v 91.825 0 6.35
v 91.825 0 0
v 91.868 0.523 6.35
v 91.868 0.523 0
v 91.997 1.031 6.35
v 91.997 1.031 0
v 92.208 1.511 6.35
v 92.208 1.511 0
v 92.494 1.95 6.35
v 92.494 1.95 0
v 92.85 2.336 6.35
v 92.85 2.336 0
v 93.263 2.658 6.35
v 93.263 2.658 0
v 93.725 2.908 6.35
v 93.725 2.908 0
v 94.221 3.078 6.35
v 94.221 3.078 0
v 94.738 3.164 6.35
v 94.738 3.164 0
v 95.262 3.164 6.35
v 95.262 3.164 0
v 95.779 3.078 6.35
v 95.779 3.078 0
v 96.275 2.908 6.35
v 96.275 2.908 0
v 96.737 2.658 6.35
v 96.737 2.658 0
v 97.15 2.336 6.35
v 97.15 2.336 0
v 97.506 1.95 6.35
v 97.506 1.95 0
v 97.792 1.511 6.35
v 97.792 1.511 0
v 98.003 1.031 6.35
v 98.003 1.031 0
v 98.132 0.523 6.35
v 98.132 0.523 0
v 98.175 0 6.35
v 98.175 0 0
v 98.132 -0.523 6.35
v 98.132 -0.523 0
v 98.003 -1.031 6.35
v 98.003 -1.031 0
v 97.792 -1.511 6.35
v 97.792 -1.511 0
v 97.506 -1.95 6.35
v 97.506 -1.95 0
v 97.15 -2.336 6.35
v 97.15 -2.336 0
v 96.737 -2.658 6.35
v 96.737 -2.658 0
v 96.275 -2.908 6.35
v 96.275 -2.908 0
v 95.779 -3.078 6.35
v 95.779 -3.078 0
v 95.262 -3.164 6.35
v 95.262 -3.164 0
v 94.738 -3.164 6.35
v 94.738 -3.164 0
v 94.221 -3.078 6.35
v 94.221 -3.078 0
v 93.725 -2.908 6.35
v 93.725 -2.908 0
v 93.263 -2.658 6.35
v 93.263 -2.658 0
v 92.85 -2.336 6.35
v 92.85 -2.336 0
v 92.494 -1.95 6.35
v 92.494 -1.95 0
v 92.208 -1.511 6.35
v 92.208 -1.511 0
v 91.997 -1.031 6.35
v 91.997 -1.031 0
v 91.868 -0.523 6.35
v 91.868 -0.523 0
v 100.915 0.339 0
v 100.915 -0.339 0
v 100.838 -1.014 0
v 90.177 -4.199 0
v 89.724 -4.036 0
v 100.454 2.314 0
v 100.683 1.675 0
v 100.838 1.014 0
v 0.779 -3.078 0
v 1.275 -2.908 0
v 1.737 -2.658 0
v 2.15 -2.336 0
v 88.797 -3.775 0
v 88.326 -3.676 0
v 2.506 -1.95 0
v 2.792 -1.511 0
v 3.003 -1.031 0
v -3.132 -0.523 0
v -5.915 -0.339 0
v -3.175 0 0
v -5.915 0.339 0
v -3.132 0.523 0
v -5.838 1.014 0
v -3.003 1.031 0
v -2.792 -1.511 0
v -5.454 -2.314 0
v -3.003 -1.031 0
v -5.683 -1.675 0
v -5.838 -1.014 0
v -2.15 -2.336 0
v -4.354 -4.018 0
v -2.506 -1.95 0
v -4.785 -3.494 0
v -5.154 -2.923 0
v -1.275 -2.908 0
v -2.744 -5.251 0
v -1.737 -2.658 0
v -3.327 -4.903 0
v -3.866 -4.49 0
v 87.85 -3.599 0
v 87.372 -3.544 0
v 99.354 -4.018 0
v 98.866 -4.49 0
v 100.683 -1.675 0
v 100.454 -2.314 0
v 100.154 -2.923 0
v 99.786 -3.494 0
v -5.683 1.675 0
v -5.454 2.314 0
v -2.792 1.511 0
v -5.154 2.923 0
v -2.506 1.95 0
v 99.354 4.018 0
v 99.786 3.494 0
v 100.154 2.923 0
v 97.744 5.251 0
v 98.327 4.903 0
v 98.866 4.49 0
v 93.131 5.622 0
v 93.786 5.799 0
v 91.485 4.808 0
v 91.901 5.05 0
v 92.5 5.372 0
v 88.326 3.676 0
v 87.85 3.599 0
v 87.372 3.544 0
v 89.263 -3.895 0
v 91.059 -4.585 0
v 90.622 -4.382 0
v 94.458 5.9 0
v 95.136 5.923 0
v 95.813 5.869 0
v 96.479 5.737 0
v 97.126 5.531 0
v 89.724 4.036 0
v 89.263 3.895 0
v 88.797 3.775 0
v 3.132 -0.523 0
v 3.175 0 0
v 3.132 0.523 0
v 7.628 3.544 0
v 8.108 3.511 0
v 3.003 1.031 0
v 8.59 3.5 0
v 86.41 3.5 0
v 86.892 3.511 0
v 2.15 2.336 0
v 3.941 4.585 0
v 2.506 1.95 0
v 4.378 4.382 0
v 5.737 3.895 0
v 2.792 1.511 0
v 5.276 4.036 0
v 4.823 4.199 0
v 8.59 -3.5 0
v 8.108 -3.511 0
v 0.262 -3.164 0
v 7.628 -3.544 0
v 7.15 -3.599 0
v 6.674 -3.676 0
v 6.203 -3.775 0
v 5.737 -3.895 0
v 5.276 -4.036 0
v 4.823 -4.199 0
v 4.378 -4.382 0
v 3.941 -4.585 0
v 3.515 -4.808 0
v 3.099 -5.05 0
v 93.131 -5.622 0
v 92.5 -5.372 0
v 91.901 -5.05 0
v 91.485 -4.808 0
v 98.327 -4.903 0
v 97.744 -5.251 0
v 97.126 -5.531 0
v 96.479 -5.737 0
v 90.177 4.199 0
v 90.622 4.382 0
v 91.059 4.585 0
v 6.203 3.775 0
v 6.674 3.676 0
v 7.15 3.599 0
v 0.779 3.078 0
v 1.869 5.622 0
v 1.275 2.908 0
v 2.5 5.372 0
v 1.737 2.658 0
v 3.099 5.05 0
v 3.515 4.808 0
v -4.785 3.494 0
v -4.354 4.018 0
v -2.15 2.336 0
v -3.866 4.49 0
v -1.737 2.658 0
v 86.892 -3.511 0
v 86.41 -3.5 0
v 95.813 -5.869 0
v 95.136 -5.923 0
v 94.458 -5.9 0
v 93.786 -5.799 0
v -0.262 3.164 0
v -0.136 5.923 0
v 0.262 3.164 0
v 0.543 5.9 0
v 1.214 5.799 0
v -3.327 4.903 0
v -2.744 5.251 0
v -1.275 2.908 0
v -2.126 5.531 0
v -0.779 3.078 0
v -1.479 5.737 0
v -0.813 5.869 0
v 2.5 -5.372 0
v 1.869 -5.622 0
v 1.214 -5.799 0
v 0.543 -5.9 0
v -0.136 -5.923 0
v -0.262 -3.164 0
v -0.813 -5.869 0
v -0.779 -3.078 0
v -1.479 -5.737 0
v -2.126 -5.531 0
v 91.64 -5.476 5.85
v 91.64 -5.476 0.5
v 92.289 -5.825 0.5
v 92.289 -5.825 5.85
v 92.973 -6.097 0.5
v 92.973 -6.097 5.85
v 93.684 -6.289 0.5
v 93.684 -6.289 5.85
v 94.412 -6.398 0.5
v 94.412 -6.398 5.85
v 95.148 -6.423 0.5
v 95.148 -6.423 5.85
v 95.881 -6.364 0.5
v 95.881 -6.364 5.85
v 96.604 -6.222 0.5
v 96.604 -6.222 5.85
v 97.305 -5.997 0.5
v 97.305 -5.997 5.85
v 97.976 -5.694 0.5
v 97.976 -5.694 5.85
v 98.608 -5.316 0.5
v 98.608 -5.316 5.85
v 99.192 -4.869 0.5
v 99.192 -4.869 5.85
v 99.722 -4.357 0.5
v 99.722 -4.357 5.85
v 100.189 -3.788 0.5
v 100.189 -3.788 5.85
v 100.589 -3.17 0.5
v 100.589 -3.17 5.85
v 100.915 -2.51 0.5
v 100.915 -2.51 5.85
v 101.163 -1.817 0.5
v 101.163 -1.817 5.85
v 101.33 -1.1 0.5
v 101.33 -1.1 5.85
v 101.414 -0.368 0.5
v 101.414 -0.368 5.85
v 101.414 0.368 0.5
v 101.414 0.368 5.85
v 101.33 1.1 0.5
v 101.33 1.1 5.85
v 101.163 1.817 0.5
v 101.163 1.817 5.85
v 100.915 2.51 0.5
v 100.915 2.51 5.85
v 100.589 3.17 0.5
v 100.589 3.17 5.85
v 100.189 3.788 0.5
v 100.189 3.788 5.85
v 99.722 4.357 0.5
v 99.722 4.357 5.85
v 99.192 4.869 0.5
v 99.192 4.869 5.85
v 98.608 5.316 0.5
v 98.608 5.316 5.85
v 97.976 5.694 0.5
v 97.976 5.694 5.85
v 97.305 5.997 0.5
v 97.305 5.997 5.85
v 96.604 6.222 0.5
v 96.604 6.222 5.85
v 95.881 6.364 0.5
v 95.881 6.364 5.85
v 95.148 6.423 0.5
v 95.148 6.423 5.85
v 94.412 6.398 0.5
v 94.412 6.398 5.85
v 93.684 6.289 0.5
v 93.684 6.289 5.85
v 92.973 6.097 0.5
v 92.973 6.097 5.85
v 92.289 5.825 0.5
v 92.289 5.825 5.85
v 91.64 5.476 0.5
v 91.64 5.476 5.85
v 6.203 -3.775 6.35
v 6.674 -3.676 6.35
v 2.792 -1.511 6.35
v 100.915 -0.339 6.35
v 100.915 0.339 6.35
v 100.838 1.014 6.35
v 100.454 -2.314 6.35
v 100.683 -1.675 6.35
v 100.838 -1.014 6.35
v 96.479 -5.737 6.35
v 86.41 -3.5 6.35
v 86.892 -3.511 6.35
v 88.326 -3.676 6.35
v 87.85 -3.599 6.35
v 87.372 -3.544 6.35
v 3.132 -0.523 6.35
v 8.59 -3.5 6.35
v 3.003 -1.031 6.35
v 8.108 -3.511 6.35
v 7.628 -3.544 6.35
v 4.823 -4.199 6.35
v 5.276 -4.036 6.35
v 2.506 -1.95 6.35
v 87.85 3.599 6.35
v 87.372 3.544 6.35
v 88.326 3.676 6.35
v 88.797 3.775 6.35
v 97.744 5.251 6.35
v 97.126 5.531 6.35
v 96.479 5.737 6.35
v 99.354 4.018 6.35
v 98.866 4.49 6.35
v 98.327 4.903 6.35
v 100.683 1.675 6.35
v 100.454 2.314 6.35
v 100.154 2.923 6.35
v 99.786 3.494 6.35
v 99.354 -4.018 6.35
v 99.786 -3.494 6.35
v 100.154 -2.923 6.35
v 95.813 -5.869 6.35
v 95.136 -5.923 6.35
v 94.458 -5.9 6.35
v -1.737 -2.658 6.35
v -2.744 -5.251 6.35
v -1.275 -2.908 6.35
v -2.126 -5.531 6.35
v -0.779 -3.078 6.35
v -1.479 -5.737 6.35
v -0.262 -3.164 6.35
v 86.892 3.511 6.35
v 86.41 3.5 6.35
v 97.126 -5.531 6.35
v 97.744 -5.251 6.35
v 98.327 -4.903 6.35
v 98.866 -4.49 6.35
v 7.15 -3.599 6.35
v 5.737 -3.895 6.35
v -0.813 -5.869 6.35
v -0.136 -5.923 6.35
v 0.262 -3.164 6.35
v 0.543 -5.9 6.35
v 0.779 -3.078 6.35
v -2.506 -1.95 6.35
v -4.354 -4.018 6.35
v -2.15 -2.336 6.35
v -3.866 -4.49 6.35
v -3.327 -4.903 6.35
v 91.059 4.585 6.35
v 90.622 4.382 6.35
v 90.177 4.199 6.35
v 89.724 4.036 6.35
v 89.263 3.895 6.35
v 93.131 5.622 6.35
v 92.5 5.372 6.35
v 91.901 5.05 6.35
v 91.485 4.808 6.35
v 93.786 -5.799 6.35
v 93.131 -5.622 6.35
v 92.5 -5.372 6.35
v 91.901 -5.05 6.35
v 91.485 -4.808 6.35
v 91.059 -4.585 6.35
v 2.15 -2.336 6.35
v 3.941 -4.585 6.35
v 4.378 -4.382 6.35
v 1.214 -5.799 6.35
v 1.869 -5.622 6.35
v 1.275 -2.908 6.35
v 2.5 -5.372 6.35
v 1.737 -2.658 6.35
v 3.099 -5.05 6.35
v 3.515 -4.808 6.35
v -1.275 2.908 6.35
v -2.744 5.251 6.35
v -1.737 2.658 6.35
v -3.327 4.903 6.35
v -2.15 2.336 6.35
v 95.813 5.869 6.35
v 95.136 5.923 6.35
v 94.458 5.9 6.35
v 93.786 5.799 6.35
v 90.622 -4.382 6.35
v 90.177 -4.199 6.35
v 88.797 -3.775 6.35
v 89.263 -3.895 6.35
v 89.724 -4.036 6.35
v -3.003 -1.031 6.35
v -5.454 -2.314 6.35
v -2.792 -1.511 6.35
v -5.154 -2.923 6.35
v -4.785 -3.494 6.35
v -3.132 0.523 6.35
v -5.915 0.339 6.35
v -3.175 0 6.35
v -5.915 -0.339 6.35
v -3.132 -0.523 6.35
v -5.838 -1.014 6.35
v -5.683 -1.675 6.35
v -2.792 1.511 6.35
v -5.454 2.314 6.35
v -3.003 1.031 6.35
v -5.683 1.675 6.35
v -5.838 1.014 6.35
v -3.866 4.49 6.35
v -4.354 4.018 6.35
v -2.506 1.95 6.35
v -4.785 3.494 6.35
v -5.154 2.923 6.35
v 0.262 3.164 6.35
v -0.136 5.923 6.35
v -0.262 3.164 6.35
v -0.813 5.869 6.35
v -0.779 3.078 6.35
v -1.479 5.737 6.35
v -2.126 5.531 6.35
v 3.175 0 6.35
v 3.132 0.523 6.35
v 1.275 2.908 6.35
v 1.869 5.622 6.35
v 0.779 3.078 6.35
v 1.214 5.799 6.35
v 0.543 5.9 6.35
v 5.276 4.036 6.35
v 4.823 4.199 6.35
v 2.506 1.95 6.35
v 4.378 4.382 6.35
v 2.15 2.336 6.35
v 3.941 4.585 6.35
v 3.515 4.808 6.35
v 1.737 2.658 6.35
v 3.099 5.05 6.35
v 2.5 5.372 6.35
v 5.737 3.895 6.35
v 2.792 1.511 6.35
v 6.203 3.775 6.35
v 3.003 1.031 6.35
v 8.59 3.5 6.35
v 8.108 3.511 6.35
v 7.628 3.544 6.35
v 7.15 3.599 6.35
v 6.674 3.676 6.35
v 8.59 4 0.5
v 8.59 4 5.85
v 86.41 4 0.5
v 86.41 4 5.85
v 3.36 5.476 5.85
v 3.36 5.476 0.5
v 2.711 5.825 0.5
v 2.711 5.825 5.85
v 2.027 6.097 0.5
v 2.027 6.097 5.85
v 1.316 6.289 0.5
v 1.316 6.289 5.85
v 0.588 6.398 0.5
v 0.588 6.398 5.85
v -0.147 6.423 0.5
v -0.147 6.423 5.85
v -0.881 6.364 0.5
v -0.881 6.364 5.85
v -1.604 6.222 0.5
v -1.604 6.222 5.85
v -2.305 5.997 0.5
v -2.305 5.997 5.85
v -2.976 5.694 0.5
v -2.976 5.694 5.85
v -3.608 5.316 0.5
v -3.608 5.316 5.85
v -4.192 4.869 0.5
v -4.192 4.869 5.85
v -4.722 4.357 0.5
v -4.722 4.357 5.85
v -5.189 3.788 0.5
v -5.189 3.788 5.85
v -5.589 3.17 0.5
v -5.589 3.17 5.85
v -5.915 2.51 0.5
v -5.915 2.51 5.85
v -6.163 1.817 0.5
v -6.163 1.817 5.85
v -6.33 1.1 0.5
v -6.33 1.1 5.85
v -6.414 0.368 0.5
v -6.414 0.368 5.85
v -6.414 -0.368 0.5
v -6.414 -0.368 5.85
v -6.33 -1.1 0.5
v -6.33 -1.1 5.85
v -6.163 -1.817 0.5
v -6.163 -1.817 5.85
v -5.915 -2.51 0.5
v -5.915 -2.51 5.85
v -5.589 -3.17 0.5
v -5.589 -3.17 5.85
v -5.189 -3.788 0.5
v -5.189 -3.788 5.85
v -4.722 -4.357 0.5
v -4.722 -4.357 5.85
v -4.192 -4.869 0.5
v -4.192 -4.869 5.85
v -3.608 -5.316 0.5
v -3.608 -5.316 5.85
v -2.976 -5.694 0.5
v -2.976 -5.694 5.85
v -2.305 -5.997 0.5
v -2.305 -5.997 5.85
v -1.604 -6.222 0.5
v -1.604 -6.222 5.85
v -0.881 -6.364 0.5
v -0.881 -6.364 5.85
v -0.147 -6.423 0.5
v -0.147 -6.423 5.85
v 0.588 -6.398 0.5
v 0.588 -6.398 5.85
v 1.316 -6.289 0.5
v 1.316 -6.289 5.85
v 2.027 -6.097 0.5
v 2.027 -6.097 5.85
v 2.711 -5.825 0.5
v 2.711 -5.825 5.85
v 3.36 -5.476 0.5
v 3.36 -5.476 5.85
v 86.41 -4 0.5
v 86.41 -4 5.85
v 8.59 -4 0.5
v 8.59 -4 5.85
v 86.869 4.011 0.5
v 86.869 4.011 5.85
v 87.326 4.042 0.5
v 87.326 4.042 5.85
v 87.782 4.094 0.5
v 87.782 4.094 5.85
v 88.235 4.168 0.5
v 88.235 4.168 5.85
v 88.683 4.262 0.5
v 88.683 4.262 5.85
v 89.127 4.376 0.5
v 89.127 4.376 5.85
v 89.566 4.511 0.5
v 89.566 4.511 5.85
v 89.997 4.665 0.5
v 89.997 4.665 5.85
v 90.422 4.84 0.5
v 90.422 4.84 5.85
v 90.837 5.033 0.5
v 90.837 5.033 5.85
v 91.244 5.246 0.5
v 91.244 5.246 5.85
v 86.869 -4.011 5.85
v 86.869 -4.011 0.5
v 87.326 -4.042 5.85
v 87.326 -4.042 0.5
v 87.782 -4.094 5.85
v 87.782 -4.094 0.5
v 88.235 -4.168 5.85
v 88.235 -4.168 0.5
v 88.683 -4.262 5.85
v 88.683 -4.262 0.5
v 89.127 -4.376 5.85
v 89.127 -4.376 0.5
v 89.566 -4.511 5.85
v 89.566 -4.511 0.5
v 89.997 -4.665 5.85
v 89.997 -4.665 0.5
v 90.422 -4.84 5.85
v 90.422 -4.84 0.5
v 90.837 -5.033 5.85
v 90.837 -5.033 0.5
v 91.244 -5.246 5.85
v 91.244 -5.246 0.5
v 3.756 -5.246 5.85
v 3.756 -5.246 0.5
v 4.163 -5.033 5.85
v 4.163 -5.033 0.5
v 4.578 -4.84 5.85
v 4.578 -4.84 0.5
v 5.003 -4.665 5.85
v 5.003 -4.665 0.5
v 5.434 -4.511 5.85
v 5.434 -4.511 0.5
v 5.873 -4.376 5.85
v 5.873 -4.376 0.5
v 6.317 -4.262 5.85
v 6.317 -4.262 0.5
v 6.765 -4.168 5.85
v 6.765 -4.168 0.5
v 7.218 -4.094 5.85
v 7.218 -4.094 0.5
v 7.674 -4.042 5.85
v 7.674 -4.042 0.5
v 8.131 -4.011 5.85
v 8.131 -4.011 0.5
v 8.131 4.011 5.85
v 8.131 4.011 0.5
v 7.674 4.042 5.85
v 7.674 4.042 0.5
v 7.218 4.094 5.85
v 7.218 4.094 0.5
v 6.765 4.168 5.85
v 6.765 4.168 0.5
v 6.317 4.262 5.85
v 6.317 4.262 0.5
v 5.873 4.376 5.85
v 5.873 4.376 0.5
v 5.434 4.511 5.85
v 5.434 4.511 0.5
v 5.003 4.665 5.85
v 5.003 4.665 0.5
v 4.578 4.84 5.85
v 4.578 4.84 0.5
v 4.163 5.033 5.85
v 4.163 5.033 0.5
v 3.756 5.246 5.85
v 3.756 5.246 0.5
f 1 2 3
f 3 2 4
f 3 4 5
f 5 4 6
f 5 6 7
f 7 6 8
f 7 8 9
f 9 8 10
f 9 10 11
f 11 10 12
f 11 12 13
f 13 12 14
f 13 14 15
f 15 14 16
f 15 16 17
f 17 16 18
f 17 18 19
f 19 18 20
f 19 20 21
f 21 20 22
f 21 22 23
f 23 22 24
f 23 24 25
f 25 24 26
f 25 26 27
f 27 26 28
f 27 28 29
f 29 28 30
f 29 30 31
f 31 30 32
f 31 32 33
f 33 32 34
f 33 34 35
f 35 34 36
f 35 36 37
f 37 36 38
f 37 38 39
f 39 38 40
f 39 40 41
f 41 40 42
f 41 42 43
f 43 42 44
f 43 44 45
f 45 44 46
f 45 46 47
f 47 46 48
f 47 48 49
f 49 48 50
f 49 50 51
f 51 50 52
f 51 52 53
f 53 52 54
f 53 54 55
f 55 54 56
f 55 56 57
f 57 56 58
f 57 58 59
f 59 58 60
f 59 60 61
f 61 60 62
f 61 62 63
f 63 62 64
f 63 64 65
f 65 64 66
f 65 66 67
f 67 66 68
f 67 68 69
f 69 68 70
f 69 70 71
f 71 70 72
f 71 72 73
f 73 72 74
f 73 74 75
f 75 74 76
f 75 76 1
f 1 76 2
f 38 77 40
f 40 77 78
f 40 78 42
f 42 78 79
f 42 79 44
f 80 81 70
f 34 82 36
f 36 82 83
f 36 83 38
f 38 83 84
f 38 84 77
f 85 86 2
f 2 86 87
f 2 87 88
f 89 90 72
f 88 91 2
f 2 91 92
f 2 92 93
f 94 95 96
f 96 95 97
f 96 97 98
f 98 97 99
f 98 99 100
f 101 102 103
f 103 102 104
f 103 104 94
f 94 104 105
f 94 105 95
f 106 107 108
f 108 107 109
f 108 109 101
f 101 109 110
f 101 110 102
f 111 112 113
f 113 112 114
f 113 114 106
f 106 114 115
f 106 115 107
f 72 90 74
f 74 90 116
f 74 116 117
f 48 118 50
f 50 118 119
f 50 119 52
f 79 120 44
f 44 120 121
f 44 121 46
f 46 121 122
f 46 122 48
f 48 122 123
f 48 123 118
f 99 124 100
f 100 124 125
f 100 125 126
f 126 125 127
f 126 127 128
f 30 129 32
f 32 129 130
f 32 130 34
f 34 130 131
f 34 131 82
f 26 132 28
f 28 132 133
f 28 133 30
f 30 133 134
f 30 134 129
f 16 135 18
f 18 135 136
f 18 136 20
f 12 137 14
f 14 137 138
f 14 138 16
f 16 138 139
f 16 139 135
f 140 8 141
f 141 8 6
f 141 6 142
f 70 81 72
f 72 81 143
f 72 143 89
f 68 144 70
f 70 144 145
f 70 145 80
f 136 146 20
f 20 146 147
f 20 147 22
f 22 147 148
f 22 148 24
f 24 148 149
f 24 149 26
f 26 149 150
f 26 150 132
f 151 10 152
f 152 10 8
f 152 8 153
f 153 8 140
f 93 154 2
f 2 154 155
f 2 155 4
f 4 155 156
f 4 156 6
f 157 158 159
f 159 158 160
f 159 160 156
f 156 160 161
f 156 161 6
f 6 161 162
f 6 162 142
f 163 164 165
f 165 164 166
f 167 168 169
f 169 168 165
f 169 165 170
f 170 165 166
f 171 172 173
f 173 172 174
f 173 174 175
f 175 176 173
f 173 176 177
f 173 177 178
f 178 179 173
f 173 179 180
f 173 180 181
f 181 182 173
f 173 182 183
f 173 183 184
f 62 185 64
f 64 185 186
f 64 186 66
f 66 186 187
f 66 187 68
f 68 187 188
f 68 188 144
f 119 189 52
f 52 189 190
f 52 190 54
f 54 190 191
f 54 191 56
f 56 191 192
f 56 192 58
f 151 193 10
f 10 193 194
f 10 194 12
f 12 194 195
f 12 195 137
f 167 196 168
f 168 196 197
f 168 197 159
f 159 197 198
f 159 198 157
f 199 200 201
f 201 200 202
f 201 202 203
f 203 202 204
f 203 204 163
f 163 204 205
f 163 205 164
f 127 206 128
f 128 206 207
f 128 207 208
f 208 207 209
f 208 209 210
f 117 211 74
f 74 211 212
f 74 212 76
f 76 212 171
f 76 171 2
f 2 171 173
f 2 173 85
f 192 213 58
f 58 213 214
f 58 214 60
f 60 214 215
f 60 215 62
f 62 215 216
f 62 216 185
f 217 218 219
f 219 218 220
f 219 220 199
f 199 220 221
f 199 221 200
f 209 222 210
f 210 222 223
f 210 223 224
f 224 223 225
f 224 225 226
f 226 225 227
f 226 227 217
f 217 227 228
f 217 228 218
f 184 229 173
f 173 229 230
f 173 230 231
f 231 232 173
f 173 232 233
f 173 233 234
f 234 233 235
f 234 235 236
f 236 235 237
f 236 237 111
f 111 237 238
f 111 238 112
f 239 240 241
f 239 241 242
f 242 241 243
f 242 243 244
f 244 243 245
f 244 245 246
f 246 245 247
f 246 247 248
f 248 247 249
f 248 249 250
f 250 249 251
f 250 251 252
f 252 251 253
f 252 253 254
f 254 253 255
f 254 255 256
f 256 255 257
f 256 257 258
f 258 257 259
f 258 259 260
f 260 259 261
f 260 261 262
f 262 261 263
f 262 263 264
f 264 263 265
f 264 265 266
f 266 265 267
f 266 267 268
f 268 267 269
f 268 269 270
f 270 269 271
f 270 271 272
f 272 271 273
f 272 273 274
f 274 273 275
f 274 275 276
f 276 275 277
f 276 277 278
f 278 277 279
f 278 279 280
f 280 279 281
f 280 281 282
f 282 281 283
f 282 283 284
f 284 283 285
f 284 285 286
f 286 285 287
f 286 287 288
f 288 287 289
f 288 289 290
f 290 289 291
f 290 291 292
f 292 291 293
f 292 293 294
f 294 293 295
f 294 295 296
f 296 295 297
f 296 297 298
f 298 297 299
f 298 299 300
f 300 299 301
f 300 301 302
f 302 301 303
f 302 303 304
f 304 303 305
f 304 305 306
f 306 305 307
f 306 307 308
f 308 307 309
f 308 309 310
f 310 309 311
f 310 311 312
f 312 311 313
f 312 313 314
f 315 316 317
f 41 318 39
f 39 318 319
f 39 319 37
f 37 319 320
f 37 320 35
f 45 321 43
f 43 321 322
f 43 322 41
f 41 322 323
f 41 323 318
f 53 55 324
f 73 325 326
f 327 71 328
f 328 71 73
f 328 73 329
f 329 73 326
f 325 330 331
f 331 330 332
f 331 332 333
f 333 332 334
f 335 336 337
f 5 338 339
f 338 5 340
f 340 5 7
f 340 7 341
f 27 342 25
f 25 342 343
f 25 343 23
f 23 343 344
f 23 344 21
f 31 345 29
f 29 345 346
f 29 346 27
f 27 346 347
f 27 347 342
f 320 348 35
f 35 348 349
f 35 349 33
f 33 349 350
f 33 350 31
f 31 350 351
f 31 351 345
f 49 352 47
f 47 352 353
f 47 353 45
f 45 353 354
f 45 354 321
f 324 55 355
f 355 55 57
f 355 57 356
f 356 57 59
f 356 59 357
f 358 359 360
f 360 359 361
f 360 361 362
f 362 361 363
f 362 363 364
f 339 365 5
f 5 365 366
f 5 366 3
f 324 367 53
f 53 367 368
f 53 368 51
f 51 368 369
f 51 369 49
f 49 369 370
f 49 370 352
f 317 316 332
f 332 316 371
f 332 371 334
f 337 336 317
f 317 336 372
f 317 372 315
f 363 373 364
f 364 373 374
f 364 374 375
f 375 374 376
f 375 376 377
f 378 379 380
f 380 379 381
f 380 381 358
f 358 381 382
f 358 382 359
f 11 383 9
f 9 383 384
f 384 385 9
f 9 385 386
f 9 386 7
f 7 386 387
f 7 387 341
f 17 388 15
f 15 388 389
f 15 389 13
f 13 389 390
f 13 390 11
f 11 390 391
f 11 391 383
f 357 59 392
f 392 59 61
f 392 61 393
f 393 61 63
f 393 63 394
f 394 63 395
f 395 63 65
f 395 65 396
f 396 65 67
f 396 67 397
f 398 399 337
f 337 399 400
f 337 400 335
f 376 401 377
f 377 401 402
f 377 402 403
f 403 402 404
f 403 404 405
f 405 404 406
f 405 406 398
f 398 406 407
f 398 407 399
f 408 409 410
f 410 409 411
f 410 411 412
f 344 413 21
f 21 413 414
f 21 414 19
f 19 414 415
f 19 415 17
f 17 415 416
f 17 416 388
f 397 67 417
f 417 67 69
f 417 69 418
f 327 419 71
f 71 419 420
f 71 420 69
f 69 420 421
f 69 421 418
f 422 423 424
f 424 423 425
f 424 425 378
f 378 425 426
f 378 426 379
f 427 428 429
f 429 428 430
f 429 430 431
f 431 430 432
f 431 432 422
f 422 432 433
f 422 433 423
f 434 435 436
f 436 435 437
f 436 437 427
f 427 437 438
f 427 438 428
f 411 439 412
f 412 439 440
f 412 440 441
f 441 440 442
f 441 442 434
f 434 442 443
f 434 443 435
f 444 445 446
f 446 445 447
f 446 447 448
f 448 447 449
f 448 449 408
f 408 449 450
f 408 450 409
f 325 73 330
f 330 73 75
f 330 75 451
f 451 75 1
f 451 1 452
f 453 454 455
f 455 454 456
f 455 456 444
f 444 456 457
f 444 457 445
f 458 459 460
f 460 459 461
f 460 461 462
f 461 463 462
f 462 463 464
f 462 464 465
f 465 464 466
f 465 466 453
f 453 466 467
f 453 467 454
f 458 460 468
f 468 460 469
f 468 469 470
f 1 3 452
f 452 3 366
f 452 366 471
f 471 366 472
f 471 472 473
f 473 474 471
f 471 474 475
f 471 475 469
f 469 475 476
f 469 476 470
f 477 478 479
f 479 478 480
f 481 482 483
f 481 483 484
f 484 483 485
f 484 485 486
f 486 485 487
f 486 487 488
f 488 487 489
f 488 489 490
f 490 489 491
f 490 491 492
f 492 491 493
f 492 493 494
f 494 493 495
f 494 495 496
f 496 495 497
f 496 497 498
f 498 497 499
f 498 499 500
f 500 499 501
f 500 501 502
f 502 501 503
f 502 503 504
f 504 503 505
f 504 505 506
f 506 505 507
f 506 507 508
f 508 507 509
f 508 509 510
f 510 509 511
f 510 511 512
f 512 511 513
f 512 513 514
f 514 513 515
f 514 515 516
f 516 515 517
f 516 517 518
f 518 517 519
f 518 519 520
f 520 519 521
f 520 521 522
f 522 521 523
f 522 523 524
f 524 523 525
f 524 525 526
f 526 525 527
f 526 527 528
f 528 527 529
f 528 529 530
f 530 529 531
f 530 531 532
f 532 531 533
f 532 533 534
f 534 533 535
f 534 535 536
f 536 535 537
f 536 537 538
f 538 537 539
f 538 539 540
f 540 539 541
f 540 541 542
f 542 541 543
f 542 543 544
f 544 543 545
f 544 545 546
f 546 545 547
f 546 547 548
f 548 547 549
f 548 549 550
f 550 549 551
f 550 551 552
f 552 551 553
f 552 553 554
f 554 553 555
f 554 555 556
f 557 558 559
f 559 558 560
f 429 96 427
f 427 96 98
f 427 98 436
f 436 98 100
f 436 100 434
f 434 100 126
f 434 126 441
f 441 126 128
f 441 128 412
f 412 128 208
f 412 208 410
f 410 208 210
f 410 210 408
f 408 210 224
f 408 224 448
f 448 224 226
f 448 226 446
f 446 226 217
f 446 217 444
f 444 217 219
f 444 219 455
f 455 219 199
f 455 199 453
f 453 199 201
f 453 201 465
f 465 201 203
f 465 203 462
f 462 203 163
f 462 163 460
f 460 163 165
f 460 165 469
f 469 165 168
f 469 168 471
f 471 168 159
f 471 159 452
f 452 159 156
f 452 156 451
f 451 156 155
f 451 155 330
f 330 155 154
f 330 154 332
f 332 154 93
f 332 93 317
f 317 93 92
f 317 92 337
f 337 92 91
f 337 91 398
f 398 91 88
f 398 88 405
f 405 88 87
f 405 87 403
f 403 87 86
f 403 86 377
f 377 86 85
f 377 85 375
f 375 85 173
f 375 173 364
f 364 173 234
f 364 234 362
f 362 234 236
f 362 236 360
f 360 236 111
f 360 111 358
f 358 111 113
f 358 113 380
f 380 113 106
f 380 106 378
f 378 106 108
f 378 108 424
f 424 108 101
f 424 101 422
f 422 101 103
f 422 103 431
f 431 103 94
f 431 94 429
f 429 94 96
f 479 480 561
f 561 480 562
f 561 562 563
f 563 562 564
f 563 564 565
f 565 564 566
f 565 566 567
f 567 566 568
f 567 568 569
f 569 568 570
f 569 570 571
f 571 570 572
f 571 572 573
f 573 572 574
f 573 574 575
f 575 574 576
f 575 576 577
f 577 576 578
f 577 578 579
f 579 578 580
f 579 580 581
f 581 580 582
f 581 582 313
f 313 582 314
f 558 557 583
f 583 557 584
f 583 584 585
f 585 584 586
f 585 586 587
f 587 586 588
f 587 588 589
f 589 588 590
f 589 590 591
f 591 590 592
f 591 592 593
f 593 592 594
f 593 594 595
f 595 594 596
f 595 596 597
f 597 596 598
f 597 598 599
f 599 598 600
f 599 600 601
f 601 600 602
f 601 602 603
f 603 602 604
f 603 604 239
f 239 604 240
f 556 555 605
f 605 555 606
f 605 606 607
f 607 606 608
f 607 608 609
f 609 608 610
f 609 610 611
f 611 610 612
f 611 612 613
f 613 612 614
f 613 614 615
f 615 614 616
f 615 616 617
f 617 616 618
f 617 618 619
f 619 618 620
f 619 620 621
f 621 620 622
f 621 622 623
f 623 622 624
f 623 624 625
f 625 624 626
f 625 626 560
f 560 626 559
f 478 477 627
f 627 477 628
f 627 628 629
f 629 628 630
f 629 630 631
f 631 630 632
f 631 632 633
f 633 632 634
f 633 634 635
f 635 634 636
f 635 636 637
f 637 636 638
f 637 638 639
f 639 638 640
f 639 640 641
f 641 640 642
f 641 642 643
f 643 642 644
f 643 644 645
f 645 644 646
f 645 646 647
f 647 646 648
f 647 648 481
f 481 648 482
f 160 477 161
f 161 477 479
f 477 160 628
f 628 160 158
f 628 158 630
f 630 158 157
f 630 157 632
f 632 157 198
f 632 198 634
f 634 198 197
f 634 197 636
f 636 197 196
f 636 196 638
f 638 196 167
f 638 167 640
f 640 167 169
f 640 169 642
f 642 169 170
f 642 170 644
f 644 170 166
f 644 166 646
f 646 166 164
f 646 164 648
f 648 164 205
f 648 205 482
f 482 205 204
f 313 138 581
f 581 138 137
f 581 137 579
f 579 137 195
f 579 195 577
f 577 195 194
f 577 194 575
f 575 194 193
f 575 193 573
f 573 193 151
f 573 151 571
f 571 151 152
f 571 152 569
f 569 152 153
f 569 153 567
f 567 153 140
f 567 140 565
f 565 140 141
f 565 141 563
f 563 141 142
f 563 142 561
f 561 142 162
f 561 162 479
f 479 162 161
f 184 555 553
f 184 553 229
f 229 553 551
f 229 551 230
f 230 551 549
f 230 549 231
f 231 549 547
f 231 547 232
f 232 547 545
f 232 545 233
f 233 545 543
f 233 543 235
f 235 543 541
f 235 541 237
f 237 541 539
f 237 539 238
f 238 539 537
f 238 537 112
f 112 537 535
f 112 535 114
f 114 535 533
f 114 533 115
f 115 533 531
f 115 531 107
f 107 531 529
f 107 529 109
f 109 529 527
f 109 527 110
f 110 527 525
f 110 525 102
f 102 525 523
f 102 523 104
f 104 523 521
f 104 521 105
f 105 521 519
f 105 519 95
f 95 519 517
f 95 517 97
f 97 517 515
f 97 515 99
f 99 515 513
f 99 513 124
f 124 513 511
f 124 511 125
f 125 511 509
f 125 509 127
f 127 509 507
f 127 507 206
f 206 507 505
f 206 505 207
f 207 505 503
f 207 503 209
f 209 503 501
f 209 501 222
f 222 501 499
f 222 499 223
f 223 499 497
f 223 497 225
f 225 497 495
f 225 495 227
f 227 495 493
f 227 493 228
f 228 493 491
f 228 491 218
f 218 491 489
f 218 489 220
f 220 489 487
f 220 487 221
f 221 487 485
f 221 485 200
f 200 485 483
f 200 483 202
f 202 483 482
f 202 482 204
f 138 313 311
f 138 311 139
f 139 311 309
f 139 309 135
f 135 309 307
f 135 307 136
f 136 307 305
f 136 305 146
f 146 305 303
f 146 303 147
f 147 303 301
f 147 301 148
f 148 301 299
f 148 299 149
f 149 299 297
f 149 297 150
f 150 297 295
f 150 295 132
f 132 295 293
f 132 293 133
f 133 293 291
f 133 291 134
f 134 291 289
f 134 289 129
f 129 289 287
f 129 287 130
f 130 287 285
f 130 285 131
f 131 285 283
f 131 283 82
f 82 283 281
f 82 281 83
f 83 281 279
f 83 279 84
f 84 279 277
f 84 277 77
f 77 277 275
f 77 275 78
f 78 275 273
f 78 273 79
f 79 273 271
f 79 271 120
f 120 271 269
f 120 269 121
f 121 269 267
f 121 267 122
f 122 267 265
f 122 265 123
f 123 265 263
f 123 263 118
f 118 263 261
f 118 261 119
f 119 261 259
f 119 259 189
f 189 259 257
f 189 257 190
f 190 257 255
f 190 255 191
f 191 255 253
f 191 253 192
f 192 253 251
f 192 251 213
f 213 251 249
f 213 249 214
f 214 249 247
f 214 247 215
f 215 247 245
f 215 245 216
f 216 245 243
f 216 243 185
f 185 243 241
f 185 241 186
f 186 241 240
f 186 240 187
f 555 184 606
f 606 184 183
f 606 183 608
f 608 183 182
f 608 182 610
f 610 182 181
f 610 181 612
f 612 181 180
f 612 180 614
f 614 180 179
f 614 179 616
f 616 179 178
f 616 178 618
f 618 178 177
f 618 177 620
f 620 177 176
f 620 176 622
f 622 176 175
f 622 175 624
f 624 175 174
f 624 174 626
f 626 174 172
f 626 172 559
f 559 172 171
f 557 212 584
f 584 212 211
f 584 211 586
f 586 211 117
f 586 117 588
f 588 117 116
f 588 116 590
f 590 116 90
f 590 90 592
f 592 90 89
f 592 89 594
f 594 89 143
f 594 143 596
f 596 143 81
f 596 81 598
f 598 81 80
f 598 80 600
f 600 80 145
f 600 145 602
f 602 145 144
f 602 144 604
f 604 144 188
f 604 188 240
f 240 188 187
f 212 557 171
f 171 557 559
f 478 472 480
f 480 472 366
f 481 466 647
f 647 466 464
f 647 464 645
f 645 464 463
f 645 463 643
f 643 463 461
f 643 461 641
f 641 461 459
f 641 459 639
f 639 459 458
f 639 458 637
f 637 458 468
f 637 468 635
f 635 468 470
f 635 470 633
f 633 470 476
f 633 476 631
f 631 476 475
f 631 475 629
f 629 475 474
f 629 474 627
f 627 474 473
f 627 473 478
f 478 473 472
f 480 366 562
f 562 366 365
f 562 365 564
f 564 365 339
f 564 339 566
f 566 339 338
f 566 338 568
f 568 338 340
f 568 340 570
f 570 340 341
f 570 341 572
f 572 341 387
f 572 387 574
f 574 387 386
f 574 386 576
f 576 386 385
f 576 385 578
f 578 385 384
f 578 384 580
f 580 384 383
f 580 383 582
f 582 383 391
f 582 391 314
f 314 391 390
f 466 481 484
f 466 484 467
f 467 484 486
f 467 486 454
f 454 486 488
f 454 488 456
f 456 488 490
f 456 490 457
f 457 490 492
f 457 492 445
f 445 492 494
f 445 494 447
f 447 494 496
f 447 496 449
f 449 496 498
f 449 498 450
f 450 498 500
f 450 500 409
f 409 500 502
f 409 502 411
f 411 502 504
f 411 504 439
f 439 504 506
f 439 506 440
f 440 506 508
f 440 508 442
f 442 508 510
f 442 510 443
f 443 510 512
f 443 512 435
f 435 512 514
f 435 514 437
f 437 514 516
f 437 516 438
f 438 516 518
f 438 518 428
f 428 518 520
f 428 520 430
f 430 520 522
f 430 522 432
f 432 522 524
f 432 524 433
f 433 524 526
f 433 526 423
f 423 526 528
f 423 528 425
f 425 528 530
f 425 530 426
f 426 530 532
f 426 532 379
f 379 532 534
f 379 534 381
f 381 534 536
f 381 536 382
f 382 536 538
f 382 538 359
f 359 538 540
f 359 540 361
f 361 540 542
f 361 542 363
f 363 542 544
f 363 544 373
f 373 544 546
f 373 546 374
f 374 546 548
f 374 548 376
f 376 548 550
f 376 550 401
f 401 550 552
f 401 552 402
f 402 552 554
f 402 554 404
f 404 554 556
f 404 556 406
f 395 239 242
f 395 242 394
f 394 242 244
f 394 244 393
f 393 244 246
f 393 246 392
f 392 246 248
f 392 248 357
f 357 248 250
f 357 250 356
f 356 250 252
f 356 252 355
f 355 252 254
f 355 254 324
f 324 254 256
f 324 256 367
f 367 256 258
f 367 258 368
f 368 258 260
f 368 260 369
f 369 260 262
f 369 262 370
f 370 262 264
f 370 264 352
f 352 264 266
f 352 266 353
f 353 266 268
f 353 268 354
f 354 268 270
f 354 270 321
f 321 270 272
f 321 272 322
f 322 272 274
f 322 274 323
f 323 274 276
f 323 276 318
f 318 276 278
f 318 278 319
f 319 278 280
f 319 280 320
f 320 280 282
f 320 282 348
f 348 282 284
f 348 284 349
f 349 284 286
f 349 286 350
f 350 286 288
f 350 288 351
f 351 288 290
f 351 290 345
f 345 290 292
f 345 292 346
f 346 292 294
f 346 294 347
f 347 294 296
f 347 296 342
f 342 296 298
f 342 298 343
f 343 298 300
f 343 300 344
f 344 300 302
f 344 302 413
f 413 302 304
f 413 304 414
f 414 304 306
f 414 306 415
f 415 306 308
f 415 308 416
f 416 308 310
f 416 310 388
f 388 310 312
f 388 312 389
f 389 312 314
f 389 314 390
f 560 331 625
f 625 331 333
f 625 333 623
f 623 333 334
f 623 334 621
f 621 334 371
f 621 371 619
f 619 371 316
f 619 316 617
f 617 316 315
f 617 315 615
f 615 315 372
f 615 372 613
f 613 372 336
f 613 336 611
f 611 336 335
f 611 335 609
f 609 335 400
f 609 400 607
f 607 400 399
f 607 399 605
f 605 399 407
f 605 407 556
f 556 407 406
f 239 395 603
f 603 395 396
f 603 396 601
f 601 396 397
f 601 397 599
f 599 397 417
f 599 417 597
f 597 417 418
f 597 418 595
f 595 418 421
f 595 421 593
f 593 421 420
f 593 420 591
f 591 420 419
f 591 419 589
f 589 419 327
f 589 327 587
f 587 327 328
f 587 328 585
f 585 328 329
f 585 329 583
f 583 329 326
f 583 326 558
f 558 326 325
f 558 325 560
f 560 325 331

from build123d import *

# Parameters (mm, degrees)
SKETCH2_R           = 3.175
BOSS_EXTRUDE1_DEPTH = 6.35
FILLET1_R           = 10
CHAMFER1_SIZE       = 0.5


with BuildPart() as part:
    # Sketch2 → Boss-Extrude1 (new body)
    # profile 1 of 5: a face of its own
    with BuildSketch(Plane.XY):
        with BuildLine():
            Line((89.972015811, 4), (5.027984189, 4))
            ThreePointArc((5.027984189, 4), (6.065699606, 2.118469564), (6.425, 0))
            ThreePointArc((6.425, 0), (6.065699606, -2.118469564), (5.027984189, -4))
            Line((5.027984189, -4), (89.972015811, -4))
            ThreePointArc((89.972015811, -4), (88.575, 0), (89.972015811, 4))
        make_face()
    # profile 2 of 5: a face of its own
    with BuildSketch(Plane.XY):
        with BuildLine():
            Line((95, 4), (89.972015811, 4))
            ThreePointArc((89.972015811, 4), (88.575, 0), (89.972015811, -4))
            Line((89.972015811, -4), (95, -4))
            ThreePointArc((95, -4), (99, 0), (95, 4))
        make_face()
        with Locations((95, 0)):
            Circle(SKETCH2_R, mode=Mode.SUBTRACT)
    # profile 3 of 5: a face of its own
    with BuildSketch(Plane.XY):
        with BuildLine():
            ThreePointArc((101.425, 0), (97.118469564, 6.065699606), (89.972015811, 4))
            Line((89.972015811, 4), (95, 4))
            ThreePointArc((95, 4), (99, 0), (95, -4))
            Line((95, -4), (89.972015811, -4))
            ThreePointArc((89.972015811, -4), (97.118469564, -6.065699606), (101.425, 0))
        make_face()
    # profile 4 of 5: a face of its own
    with BuildSketch(Plane.XY):
        with BuildLine():
            Line((5.027984189, 4), (0, 4))
            ThreePointArc((0, 4), (-4, 0), (0, -4))
            Line((0, -4), (5.027984189, -4))
            ThreePointArc((5.027984189, -4), (6.065699606, -2.118469564), (6.425, 0))
            ThreePointArc((6.425, 0), (6.065699606, 2.118469564), (5.027984189, 4))
        make_face()
        Circle(SKETCH2_R, mode=Mode.SUBTRACT)
    # profile 5 of 5: a face of its own
    with BuildSketch(Plane.XY):
        with BuildLine():
            ThreePointArc((0, -4), (-4, 0), (0, 4))
            Line((0, 4), (5.027984189, 4))
            ThreePointArc((5.027984189, 4), (-6.425, 0), (5.027984189, -4))
            Line((5.027984189, -4), (0, -4))
        make_face()
    extrude(amount=BOSS_EXTRUDE1_DEPTH)

    # Fillet1
    fillet1_edges = [part.edges().sort_by_distance(p)[0] for p in [
        (89.972015811, 4, 3.175),
        (89.972015811, -4, 3.175),
        (5.027984189, -4, 3.175),
        (5.027984189, 4, 3.175),
    ]]
    fillet(fillet1_edges, radius=FILLET1_R)

    # Chamfer1
    chamfer1_edges = [part.edges().sort_by_distance(p)[0] for p in [
        (47.5, 4, 0),
        (47.5, 4, 6.35),
        (101.425, 0, 0),
        (101.425, 0, 6.35),
        (47.5, -4, 0),
        (47.5, -4, 6.35),
        (-6.425, 0, 0),
        (-6.425, 0, 6.35),
        (89.127426014, 4.376177452, 0),
        (89.127426014, 4.376177452, 6.35),
        (89.127426014, -4.376177452, 0),
        (89.127426014, -4.376177452, 6.35),
        (5.872573986, -4.376177452, 0),
        (5.872573986, -4.376177452, 6.35),
        (5.872573986, 4.376177452, 0),
        (5.872573986, 4.376177452, 6.35),
    ]]
    chamfer(chamfer1_edges, length=CHAMFER1_SIZE)


solid = part.part
